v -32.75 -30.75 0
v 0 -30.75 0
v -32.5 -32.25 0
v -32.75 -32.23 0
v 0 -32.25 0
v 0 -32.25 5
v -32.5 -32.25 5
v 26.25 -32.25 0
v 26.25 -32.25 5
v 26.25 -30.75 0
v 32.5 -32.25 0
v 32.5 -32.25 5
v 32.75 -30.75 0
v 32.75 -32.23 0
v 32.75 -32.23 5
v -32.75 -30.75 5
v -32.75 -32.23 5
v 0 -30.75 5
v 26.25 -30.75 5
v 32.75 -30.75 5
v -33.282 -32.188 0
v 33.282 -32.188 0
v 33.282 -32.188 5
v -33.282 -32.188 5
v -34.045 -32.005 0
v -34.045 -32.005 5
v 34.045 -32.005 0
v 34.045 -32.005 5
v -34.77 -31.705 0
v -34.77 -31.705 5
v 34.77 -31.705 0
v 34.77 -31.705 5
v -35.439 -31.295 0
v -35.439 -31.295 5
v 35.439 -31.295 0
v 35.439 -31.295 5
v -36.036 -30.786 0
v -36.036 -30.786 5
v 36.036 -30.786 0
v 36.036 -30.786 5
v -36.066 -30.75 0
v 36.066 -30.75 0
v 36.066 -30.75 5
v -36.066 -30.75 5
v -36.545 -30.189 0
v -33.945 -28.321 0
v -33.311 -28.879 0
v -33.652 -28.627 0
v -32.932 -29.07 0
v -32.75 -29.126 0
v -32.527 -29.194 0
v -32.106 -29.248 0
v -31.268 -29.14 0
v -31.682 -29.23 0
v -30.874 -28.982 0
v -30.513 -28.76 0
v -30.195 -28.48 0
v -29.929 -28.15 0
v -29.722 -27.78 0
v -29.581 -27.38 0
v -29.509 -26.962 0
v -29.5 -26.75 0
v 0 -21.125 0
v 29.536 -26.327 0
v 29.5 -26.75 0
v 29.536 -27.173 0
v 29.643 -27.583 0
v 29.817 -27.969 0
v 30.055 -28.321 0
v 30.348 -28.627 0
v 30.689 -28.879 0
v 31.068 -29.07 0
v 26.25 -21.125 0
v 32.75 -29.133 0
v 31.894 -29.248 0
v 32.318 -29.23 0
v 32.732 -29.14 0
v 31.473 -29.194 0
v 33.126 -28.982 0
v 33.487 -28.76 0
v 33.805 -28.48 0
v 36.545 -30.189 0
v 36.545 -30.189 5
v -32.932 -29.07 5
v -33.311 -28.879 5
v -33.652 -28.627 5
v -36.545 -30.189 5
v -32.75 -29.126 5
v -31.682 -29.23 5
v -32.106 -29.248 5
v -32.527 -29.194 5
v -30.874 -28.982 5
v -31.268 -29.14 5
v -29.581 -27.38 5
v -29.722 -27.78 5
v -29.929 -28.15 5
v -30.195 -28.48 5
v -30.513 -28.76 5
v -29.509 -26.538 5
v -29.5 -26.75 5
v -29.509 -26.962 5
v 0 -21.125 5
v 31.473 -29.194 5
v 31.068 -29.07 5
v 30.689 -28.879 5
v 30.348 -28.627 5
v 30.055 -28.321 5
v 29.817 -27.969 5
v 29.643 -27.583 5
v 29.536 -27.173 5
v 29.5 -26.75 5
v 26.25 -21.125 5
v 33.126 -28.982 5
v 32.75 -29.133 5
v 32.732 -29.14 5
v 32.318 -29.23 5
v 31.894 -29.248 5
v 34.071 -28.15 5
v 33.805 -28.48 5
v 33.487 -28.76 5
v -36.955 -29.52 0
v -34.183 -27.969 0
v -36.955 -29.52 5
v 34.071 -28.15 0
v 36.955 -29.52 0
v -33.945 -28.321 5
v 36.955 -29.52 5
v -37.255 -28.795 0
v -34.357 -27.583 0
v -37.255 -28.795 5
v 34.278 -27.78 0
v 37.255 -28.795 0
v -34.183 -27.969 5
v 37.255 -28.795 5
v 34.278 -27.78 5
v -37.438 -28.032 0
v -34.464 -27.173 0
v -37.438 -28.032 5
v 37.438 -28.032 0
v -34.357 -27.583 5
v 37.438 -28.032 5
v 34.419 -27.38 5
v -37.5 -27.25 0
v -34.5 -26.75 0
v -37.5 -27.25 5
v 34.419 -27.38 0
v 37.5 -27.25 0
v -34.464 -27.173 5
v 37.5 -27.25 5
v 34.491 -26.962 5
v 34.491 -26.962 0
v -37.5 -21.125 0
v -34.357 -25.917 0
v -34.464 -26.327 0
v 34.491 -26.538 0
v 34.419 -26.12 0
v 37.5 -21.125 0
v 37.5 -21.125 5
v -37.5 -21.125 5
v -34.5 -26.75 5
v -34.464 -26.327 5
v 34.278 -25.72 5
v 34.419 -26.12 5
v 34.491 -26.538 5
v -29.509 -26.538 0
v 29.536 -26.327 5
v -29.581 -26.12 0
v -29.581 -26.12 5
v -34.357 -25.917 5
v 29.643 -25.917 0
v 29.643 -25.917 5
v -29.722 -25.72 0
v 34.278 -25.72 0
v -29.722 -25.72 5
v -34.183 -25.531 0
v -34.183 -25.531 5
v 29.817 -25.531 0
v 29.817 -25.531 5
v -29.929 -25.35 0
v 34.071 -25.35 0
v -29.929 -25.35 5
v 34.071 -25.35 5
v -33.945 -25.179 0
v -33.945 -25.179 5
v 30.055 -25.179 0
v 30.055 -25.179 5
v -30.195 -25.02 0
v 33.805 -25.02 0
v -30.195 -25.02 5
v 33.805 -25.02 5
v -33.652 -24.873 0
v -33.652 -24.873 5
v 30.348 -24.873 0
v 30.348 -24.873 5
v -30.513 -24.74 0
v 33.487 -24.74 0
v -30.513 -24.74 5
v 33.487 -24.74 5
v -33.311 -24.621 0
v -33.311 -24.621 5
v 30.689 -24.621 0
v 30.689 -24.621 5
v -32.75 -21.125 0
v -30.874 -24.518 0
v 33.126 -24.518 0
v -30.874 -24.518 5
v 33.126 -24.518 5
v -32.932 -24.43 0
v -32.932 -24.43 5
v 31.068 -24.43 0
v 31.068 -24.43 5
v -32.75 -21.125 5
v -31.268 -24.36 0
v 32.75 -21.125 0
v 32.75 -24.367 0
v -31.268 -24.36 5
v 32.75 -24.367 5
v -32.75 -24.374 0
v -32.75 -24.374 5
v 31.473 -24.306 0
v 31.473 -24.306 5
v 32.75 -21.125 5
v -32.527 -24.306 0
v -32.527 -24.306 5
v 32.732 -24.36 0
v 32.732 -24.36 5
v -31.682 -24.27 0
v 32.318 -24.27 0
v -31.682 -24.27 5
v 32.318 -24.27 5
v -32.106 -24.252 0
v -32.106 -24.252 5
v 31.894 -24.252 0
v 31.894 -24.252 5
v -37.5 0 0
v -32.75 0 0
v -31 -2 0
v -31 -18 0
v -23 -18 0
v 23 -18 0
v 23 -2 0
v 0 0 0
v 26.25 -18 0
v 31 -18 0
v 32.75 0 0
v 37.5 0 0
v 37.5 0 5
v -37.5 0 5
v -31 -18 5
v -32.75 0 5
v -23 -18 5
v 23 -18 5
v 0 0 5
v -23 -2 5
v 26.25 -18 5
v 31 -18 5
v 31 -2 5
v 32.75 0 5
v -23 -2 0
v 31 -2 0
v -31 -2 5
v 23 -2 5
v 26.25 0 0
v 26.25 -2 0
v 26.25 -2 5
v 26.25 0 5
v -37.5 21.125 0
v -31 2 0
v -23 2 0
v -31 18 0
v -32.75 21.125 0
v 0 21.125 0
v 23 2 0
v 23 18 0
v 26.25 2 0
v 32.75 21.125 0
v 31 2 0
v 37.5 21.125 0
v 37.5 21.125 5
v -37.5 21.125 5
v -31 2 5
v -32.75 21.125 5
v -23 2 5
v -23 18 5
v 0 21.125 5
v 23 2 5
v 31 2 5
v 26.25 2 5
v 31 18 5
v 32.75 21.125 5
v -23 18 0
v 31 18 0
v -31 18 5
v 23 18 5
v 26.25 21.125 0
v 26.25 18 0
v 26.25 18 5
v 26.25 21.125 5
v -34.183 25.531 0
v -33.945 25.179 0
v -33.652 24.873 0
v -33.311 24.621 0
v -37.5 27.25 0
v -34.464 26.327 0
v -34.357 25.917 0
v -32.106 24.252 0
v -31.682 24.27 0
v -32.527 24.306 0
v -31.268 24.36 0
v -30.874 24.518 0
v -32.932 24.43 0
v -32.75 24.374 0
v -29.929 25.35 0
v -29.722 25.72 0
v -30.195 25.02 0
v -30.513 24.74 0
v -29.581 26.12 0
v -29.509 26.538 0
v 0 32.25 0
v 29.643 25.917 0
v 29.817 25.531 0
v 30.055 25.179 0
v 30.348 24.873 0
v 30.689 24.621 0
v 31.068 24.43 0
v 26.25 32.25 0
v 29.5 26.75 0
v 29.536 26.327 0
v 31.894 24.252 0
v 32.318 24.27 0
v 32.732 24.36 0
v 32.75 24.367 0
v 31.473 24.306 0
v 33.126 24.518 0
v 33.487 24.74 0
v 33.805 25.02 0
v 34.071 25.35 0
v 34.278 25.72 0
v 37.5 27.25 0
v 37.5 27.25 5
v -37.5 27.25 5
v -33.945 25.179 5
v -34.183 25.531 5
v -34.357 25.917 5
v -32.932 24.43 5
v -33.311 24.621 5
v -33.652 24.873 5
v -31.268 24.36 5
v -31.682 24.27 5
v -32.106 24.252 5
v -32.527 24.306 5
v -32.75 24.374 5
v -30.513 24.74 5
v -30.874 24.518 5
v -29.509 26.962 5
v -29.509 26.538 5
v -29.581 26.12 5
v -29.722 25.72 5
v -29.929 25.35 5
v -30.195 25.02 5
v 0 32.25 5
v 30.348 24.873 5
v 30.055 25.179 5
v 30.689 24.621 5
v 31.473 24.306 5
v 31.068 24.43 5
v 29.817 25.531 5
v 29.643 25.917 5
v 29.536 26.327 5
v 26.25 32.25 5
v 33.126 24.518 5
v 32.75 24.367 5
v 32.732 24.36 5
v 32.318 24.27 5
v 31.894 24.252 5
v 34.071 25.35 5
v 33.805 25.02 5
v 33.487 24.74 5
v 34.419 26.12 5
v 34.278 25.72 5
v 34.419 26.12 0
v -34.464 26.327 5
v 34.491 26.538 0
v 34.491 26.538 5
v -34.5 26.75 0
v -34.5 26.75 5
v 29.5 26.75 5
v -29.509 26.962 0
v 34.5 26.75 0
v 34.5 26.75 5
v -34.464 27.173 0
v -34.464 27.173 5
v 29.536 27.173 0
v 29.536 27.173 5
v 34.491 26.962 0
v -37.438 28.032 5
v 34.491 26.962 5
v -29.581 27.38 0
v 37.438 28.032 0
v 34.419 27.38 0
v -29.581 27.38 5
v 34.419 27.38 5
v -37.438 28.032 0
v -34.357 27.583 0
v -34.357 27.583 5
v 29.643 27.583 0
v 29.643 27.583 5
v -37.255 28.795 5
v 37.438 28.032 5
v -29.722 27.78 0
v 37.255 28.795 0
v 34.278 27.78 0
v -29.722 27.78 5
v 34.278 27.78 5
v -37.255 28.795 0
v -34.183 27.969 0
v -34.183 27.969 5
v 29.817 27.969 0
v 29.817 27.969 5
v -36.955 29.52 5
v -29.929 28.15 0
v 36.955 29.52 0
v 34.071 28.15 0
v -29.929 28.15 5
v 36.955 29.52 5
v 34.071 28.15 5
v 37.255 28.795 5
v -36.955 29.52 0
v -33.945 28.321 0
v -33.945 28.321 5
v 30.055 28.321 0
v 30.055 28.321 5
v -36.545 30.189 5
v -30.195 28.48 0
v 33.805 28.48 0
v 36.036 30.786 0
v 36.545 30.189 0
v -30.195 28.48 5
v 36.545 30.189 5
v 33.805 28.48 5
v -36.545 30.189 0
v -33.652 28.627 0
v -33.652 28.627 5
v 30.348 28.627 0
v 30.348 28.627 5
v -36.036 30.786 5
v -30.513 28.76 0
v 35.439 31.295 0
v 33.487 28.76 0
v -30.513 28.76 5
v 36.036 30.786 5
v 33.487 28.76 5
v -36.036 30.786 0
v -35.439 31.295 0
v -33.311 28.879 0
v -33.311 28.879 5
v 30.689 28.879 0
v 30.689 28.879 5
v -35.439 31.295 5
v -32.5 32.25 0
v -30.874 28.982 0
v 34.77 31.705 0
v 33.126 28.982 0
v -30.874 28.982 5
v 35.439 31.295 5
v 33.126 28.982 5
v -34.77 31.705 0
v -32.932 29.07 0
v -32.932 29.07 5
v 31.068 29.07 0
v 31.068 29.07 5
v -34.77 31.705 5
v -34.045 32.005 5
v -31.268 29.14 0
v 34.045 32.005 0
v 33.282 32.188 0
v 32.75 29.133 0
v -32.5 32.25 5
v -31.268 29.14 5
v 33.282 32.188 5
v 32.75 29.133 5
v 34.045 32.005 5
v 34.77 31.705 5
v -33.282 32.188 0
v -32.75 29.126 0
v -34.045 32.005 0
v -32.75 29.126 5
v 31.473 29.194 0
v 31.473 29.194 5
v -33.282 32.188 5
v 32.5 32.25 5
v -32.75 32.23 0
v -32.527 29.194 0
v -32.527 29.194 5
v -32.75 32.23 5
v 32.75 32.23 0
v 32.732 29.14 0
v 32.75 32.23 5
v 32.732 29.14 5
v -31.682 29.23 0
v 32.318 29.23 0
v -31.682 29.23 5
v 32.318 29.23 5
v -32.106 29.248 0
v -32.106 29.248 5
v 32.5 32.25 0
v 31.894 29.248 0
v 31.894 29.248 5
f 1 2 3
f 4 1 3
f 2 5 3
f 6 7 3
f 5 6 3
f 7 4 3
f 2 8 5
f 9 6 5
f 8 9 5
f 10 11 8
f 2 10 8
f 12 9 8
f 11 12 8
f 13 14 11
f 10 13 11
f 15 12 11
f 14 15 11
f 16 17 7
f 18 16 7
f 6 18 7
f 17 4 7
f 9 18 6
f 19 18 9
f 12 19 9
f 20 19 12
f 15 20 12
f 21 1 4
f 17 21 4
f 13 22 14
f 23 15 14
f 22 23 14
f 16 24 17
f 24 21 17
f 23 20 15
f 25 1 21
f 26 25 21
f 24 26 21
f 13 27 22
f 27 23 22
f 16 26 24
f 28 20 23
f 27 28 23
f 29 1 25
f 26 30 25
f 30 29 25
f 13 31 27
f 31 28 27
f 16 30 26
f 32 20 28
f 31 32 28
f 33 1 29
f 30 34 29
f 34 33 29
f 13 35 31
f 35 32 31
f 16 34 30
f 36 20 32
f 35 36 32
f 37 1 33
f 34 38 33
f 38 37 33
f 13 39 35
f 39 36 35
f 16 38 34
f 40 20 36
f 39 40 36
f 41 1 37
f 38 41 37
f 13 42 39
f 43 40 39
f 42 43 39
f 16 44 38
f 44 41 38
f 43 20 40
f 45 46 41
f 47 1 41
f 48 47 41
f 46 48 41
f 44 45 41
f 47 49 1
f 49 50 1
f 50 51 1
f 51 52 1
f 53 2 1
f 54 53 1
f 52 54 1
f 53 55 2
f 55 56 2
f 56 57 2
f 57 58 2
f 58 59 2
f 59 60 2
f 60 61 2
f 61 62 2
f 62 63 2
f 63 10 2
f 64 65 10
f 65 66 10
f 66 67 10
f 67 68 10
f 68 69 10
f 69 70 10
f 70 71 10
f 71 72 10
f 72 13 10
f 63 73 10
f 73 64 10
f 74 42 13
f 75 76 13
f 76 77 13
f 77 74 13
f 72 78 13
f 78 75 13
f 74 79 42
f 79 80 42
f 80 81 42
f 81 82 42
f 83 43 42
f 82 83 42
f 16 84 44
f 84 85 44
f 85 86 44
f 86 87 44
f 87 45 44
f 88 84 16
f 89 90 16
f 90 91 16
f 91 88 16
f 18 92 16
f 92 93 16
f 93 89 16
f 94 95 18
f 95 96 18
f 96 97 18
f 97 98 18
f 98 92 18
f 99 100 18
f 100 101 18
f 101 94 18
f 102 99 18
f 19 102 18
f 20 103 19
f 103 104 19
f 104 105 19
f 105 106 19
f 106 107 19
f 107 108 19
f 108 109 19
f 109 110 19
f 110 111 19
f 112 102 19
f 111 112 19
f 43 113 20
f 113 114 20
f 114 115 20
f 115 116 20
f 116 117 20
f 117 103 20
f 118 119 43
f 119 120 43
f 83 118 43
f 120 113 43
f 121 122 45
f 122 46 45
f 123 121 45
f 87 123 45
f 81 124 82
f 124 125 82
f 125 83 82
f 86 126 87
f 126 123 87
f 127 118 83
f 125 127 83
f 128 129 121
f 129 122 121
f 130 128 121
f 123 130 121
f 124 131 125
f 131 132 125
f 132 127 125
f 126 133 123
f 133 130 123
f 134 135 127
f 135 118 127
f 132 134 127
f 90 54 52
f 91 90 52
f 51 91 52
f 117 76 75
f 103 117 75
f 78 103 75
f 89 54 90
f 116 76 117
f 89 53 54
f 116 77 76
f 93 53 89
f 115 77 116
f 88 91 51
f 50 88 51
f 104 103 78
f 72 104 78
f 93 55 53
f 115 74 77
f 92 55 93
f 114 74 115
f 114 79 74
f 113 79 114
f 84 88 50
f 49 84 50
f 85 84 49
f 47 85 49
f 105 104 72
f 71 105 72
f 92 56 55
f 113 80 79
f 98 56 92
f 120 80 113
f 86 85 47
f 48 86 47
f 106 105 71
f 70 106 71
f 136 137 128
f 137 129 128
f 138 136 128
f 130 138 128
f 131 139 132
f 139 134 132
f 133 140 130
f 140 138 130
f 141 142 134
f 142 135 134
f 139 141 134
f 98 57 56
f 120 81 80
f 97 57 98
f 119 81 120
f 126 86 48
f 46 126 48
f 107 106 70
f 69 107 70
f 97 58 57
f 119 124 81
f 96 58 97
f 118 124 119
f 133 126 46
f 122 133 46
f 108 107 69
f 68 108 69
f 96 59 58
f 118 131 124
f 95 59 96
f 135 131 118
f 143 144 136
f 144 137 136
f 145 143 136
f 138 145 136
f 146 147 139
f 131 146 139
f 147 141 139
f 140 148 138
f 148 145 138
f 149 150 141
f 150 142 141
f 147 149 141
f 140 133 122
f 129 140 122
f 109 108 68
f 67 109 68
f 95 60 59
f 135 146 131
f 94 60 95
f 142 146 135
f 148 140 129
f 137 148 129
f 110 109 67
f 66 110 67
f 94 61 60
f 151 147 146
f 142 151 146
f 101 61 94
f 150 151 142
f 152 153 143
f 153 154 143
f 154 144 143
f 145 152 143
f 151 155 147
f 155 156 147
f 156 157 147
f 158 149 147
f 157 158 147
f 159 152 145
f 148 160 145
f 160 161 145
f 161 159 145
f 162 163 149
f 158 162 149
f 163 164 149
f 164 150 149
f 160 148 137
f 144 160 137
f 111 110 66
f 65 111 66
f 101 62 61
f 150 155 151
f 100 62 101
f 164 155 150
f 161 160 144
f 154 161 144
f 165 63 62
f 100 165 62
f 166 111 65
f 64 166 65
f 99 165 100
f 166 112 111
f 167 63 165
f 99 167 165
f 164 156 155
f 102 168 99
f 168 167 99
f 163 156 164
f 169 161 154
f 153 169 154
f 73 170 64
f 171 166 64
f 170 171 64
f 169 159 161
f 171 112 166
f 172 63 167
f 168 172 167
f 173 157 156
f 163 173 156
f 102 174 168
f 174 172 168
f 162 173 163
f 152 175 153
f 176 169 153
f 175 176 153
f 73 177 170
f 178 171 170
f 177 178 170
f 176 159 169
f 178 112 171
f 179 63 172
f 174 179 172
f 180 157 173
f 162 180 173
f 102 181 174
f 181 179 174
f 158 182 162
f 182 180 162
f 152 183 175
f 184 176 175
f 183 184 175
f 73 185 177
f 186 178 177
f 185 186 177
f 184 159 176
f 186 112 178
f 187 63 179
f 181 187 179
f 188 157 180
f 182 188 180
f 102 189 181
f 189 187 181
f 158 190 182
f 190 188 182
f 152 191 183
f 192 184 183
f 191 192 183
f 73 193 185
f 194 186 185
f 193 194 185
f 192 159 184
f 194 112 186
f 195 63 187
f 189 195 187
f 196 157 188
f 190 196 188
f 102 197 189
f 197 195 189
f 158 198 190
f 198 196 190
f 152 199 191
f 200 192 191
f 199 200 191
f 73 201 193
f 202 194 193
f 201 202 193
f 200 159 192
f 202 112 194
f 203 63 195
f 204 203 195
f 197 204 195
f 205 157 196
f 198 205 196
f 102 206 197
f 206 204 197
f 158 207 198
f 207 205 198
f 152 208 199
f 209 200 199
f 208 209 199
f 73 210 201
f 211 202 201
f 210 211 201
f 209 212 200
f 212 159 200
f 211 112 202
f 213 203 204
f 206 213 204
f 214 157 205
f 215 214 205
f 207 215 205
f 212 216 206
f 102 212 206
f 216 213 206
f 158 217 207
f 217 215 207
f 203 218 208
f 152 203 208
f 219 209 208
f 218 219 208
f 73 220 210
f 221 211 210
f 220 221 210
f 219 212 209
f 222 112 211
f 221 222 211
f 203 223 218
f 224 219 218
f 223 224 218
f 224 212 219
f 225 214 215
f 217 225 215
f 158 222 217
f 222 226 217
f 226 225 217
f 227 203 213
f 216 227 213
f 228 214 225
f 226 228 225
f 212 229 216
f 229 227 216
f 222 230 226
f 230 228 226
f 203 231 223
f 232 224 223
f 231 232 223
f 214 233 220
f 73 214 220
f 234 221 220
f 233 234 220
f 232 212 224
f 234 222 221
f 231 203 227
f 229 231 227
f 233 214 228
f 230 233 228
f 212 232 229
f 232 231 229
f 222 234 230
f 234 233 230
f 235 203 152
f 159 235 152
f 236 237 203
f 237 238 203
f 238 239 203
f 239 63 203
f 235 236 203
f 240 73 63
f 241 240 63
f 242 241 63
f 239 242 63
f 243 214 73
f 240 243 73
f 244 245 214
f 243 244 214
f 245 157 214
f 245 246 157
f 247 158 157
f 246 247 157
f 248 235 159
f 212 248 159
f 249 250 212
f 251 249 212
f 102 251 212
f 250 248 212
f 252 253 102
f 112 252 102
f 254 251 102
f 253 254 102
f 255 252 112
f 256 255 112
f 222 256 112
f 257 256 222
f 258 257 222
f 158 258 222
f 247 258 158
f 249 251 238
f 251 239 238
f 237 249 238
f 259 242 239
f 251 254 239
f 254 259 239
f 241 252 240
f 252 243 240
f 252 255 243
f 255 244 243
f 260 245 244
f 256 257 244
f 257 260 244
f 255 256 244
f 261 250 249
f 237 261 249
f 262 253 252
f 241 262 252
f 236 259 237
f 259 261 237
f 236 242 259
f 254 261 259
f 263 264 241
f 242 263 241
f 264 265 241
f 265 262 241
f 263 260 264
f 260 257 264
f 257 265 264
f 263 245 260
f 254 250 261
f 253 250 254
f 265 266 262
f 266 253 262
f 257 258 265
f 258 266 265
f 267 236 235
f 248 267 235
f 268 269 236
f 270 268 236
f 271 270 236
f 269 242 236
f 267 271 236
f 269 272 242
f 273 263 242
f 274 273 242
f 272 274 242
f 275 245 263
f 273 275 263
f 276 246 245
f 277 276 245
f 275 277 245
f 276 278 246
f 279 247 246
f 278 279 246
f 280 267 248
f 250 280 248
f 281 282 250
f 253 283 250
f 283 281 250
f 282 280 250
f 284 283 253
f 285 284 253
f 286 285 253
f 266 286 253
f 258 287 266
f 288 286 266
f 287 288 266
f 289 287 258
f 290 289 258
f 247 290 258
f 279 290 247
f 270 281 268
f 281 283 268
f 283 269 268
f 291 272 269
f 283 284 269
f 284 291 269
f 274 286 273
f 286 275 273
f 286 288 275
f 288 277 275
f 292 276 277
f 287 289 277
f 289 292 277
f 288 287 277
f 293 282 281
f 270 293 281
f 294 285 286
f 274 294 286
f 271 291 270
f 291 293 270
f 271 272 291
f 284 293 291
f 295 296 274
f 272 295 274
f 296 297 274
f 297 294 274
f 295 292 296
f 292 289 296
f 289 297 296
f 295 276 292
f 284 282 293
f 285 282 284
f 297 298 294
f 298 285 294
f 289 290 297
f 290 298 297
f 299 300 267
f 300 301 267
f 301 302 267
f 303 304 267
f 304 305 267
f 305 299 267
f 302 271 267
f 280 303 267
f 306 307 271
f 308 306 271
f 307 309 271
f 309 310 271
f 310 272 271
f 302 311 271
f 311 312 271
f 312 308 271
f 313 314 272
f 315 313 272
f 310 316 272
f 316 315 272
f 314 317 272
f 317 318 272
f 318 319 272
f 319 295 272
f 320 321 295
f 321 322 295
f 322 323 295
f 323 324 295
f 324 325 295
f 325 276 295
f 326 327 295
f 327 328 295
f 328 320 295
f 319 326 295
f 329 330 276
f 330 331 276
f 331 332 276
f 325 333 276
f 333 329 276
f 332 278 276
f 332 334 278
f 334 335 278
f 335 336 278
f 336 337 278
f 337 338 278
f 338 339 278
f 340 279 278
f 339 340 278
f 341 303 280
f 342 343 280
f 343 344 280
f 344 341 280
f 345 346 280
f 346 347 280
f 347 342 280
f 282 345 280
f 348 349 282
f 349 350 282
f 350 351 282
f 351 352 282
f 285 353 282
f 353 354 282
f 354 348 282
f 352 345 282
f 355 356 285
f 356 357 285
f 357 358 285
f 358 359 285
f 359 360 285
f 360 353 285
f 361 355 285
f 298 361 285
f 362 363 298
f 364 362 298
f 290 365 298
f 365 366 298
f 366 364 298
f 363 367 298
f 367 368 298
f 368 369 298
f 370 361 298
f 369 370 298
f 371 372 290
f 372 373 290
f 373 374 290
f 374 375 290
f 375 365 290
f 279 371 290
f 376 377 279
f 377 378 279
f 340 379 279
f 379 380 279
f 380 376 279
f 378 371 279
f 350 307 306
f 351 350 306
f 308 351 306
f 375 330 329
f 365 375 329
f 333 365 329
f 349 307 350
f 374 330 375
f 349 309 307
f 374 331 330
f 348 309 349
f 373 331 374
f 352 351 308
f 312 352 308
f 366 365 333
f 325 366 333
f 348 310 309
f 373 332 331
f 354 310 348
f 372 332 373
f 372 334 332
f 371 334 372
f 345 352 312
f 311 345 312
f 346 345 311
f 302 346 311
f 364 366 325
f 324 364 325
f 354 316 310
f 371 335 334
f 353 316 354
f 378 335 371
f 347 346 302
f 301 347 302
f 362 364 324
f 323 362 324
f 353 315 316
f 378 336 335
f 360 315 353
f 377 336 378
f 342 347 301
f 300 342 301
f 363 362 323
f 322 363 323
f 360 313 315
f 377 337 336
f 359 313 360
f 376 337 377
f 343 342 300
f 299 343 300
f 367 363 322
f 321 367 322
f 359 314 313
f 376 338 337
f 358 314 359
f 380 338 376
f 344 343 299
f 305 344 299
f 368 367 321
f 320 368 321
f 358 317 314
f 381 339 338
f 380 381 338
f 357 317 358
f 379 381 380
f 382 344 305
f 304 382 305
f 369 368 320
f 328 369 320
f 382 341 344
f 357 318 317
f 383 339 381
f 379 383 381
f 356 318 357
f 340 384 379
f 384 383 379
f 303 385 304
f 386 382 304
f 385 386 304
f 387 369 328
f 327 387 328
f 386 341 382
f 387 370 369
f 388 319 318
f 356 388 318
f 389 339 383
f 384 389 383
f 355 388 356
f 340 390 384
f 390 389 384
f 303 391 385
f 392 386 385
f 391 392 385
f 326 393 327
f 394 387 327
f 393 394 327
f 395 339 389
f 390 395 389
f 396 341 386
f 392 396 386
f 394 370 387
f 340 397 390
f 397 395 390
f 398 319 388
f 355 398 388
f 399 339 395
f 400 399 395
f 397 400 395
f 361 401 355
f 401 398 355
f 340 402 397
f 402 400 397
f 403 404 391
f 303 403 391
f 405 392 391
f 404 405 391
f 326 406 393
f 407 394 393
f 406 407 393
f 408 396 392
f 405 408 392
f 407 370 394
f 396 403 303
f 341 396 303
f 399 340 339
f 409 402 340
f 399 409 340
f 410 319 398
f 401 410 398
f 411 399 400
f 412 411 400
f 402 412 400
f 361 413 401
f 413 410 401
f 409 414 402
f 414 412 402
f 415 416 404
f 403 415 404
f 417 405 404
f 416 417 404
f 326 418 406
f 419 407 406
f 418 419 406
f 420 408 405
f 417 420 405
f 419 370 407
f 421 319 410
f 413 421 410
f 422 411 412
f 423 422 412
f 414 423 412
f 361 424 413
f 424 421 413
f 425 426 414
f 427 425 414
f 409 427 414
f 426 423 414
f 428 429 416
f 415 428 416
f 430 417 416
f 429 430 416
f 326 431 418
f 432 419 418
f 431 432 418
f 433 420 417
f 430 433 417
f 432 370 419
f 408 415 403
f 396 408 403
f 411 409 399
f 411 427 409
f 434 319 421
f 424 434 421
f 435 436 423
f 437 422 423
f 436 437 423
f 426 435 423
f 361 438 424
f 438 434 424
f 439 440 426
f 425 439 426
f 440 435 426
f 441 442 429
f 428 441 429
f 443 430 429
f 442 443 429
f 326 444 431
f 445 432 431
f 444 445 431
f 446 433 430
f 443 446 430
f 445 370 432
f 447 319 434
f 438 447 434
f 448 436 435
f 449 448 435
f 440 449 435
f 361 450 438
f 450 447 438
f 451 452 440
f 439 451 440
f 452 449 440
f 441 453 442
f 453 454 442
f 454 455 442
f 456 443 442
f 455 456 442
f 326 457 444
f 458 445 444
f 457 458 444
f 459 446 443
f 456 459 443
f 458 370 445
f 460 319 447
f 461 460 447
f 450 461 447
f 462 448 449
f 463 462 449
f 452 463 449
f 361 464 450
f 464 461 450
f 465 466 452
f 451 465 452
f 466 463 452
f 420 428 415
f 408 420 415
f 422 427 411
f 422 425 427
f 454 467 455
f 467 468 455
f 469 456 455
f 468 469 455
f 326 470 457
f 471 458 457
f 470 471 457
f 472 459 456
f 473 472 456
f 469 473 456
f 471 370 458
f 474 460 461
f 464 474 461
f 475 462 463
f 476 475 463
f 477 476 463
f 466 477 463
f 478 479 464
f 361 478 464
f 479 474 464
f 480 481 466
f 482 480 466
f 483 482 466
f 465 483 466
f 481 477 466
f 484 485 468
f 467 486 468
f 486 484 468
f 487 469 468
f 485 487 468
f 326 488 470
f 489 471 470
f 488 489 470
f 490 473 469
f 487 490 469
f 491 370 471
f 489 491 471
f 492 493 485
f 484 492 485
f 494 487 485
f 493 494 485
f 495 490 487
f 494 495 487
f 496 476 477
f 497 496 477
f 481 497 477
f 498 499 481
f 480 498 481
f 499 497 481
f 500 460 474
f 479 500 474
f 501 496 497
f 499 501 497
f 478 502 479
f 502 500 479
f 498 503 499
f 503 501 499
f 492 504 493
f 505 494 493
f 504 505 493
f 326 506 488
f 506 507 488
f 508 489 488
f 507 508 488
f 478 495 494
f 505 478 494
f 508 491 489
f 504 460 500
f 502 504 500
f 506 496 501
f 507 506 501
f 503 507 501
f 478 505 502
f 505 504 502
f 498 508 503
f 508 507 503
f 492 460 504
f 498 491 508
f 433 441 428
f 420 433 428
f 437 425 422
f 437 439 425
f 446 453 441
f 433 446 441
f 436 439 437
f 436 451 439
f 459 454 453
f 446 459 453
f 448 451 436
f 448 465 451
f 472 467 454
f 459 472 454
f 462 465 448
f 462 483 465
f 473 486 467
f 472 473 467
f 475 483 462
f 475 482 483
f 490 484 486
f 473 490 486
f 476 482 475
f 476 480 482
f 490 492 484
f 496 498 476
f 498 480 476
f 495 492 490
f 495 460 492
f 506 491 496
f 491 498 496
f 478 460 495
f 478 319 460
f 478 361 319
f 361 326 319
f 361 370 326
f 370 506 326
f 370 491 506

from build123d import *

# Parameters (mm, degrees)
SKETCH_1_W           = 75
SKETCH_1_H           = 64.5
EXTRUDE_1_DEPTH      = 5
EXTRUDE_2_DEPTH      = 2
EXTRUDE_2_DEPTH_BACK = 2
SKETCH_4_R           = 2.5
CUT_EXTRUDE_2_DEPTH  = 60.516345229
SKETCH_5_W           = 8
SKETCH_5_H           = 16
CUT_EXTRUDE_3_DEPTH  = 60.516345229
FILLET_1_R           = 5
SKETCH_6_W           = 33.787770844
SKETCH_6_H           = 60.601542709
CUT_EXTRUDE_4_DEPTH  = 10


with BuildPart() as part:
    # 草圖1 → 填料-伸長1 (new body)
    with BuildSketch(Plane.XY):
        Rectangle(SKETCH_1_W, SKETCH_1_H)
    extrude(amount=EXTRUDE_1_DEPTH)

    # 草圖2 → 填料-伸長2 (add, two sides: drawn at the far end of the back side and taken through both)
    with BuildSketch(Plane(origin=(0, 0, 0), x_dir=(0, 0, -1), z_dir=(1, 0, 0)).offset(-EXTRUDE_2_DEPTH_BACK)):
        Polygon((0, 29.870222578), (0, 0), (0, -29.870222578), (33.104121336, -21), (33.104121336, 21), align=None)
    extrude(amount=EXTRUDE_2_DEPTH + EXTRUDE_2_DEPTH_BACK)

    # 草圖4 → 除料-伸長2 (cut, through all)
    with BuildSketch(Plane(origin=(0, 0, 0), x_dir=(-1, 0, 0), z_dir=(0, 0, -1))):
        with Locations((32, 26.75)):
            Circle(SKETCH_4_R)
        with Locations(Location((32, -26.75, 0), (0, 0, 180))):
            Circle(SKETCH_4_R)
        with Locations((-32, -26.75)):
            Circle(SKETCH_4_R)
        with Locations(Location((-32, 26.75, 0), (0, 0, 180))):
            Circle(SKETCH_4_R)
    extrude(amount=-CUT_EXTRUDE_2_DEPTH, mode=Mode.SUBTRACT)

    # 草圖5 → 除料-伸長3 (cut, through all)
    with BuildSketch(Plane(origin=(0, 0, 0), x_dir=(-1, 0, 0), z_dir=(0, 0, -1))):
        with Locations((-27, 10)):
            Rectangle(SKETCH_5_W, SKETCH_5_H)
        with Locations((27, 10)):
            Rectangle(SKETCH_5_W, SKETCH_5_H)
        with Locations((27, -10)):
            Rectangle(SKETCH_5_W, SKETCH_5_H)
        with Locations((-27, -10)):
            Rectangle(SKETCH_5_W, SKETCH_5_H)
    extrude(amount=-CUT_EXTRUDE_3_DEPTH, mode=Mode.SUBTRACT)

    # 圓角1
    fillet_1_edges = [part.edges().sort_by_distance(p)[0] for p in [
        (0, -21, -33.104121336),
        (0, 21, -33.104121336),
        (-37.5, 32.25, 2.5),
        (37.5, 32.25, 2.5),
        (37.5, -32.25, 2.5),
        (-37.5, -32.25, 2.5),
    ]]
    fillet(fillet_1_edges, radius=FILLET_1_R)

    # 草圖6 → 除料-伸長4 (cut)
    with BuildSketch(Plane(origin=(2, 0, 0), x_dir=(0, 0, -1), z_dir=(1, 0, 0))):
        with Locations((16.893885422, -0.430548776)):
            Rectangle(SKETCH_6_W, SKETCH_6_H)
    extrude(amount=-CUT_EXTRUDE_4_DEPTH, mode=Mode.SUBTRACT)


solid = part.part
